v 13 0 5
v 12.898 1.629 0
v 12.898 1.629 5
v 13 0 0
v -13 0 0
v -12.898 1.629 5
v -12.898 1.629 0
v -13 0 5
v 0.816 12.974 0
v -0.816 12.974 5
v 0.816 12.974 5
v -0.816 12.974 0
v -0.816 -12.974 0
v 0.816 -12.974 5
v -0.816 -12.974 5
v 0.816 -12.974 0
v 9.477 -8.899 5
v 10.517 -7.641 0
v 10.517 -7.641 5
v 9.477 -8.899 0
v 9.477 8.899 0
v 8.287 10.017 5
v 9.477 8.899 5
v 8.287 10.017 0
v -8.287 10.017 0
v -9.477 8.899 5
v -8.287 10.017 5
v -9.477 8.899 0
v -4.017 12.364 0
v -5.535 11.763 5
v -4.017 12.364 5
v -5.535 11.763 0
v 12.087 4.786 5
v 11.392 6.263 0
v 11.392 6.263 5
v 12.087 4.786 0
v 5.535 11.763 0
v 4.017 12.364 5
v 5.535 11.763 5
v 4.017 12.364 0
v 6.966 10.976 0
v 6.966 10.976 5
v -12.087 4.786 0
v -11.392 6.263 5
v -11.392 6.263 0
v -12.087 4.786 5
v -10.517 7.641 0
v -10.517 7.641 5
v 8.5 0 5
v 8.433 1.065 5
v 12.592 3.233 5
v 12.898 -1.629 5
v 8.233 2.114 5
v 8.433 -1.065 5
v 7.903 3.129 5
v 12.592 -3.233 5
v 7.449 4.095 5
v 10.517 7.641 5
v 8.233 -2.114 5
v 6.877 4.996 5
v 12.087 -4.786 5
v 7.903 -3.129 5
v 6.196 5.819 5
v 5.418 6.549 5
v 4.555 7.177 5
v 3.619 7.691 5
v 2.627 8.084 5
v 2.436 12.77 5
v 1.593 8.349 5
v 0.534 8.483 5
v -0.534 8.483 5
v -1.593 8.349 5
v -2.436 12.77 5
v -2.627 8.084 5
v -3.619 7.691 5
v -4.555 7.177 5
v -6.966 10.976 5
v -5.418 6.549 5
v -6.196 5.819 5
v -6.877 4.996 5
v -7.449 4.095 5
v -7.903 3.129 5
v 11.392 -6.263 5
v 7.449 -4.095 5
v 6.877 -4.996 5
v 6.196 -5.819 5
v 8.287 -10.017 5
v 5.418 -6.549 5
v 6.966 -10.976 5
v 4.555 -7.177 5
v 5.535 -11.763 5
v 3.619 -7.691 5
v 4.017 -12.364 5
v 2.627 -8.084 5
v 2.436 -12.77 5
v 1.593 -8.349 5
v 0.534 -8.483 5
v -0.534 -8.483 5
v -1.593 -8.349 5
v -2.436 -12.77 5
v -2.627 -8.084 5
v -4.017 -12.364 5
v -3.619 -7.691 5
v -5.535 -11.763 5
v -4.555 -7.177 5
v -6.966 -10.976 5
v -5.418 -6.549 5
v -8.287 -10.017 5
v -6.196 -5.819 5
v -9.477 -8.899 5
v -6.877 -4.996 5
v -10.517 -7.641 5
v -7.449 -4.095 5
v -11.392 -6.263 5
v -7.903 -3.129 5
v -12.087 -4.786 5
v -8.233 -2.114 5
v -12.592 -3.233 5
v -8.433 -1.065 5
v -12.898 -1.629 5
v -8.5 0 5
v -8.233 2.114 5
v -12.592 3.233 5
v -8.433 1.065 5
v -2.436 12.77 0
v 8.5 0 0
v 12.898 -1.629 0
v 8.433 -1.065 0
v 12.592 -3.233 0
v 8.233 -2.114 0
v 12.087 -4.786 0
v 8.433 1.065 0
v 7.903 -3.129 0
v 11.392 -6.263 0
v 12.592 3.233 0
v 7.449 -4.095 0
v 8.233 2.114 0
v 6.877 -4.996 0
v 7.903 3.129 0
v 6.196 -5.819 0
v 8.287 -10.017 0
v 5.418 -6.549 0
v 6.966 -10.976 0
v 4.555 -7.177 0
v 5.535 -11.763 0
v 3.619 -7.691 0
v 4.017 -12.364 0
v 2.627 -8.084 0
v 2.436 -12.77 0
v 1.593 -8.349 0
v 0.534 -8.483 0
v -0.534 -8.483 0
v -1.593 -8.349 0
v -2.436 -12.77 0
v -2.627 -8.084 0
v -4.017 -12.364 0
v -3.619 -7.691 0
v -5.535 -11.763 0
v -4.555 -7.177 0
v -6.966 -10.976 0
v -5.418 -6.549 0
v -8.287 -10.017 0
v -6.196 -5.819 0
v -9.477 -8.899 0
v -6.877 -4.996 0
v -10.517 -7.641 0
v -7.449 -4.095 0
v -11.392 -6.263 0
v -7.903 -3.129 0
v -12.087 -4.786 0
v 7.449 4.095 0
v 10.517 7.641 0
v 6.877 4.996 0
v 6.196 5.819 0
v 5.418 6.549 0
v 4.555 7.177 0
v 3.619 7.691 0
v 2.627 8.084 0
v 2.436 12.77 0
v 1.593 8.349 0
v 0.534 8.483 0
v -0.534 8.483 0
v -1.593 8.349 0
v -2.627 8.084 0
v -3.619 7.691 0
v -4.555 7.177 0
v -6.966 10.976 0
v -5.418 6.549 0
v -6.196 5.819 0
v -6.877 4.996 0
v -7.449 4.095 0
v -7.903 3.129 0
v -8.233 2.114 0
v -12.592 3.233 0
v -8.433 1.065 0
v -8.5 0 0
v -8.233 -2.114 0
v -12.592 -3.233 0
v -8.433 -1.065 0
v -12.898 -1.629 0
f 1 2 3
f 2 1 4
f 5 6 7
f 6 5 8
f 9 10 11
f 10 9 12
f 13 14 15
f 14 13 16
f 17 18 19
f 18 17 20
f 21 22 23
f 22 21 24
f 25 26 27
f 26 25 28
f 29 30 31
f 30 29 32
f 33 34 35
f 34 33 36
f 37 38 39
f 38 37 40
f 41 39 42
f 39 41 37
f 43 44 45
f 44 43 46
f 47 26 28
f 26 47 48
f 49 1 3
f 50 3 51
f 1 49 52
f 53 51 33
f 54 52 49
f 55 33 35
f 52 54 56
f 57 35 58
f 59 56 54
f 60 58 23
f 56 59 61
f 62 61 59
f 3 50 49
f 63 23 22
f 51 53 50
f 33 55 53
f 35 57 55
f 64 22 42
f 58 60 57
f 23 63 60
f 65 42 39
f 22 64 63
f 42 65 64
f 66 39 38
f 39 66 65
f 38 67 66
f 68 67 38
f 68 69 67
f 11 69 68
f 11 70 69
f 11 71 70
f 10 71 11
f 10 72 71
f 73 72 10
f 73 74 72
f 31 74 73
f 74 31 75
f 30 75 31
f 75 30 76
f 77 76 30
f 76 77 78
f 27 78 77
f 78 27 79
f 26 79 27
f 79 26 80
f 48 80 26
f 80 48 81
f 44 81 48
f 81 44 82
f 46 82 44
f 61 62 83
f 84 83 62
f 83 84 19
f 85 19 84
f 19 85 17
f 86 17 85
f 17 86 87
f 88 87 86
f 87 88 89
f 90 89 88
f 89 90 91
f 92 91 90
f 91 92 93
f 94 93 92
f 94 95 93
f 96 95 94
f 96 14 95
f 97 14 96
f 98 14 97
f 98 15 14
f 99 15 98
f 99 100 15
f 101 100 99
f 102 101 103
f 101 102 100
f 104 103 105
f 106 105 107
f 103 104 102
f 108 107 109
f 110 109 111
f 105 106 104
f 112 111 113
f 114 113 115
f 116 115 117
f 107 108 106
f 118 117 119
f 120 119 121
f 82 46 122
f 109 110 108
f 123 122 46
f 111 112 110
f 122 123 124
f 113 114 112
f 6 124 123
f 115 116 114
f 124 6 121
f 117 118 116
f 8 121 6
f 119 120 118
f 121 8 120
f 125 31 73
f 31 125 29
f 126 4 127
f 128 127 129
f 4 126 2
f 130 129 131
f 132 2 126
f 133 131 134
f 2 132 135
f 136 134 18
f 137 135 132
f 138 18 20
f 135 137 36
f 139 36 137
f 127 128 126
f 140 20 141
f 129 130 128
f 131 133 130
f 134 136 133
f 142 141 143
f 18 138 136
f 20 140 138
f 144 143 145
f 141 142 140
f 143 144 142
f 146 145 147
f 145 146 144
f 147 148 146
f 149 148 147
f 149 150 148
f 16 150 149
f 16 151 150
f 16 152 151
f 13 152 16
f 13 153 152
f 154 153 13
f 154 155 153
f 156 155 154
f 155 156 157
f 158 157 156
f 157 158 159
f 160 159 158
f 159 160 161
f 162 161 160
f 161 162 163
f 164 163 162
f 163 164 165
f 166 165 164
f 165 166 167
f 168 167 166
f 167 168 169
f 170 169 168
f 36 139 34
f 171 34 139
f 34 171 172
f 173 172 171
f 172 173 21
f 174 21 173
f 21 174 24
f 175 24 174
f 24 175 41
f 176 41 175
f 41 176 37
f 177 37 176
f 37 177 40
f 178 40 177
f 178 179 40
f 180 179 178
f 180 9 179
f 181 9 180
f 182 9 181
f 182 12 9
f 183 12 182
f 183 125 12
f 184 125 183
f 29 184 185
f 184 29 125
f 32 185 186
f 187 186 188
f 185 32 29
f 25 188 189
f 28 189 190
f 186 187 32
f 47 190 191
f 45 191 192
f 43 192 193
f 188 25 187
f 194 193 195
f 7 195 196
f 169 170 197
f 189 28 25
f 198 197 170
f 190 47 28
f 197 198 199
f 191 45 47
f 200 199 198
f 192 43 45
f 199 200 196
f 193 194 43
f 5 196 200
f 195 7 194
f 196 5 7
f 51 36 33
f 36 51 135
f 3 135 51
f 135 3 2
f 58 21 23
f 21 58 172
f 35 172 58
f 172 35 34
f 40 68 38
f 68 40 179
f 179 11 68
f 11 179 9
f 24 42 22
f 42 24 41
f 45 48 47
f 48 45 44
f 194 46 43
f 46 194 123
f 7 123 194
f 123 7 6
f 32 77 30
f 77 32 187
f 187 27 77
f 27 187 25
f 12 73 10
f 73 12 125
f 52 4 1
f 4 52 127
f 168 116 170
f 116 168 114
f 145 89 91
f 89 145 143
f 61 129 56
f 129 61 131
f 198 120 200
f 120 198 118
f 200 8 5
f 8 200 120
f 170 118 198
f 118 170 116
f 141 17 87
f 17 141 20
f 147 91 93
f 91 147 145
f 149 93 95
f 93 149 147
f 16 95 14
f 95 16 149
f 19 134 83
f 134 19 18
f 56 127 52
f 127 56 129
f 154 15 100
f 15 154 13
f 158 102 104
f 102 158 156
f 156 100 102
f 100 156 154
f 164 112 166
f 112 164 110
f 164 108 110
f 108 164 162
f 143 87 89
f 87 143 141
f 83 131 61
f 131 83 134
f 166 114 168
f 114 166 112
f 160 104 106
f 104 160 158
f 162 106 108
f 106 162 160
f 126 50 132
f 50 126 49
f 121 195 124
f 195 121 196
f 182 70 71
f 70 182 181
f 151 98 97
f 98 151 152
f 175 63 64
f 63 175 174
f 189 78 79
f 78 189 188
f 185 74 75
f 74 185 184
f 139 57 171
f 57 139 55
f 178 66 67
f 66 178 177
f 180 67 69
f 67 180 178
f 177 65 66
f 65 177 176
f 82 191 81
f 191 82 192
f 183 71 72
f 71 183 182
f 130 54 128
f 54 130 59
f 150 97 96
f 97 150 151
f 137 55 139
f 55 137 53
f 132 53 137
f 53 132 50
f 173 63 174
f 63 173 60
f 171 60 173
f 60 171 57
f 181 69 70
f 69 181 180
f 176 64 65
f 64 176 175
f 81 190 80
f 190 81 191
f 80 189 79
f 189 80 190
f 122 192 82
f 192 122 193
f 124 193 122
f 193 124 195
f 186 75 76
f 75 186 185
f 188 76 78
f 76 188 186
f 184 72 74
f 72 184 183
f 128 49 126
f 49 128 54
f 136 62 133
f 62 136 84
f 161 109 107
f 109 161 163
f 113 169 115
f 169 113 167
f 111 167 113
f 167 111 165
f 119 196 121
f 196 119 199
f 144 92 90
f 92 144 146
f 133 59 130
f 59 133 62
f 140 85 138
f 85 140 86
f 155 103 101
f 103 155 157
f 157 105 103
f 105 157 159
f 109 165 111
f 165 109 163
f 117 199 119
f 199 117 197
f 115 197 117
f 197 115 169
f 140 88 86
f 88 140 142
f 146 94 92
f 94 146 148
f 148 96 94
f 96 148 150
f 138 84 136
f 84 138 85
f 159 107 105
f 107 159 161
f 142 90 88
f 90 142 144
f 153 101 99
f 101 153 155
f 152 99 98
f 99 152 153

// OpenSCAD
$fn = 50;


difference() {
	union() {
		cylinder(h = 5, r = 13.0000000000);
	}
	union() {
		cylinder(h = 5, r = 8.5000000000);
	}
}
